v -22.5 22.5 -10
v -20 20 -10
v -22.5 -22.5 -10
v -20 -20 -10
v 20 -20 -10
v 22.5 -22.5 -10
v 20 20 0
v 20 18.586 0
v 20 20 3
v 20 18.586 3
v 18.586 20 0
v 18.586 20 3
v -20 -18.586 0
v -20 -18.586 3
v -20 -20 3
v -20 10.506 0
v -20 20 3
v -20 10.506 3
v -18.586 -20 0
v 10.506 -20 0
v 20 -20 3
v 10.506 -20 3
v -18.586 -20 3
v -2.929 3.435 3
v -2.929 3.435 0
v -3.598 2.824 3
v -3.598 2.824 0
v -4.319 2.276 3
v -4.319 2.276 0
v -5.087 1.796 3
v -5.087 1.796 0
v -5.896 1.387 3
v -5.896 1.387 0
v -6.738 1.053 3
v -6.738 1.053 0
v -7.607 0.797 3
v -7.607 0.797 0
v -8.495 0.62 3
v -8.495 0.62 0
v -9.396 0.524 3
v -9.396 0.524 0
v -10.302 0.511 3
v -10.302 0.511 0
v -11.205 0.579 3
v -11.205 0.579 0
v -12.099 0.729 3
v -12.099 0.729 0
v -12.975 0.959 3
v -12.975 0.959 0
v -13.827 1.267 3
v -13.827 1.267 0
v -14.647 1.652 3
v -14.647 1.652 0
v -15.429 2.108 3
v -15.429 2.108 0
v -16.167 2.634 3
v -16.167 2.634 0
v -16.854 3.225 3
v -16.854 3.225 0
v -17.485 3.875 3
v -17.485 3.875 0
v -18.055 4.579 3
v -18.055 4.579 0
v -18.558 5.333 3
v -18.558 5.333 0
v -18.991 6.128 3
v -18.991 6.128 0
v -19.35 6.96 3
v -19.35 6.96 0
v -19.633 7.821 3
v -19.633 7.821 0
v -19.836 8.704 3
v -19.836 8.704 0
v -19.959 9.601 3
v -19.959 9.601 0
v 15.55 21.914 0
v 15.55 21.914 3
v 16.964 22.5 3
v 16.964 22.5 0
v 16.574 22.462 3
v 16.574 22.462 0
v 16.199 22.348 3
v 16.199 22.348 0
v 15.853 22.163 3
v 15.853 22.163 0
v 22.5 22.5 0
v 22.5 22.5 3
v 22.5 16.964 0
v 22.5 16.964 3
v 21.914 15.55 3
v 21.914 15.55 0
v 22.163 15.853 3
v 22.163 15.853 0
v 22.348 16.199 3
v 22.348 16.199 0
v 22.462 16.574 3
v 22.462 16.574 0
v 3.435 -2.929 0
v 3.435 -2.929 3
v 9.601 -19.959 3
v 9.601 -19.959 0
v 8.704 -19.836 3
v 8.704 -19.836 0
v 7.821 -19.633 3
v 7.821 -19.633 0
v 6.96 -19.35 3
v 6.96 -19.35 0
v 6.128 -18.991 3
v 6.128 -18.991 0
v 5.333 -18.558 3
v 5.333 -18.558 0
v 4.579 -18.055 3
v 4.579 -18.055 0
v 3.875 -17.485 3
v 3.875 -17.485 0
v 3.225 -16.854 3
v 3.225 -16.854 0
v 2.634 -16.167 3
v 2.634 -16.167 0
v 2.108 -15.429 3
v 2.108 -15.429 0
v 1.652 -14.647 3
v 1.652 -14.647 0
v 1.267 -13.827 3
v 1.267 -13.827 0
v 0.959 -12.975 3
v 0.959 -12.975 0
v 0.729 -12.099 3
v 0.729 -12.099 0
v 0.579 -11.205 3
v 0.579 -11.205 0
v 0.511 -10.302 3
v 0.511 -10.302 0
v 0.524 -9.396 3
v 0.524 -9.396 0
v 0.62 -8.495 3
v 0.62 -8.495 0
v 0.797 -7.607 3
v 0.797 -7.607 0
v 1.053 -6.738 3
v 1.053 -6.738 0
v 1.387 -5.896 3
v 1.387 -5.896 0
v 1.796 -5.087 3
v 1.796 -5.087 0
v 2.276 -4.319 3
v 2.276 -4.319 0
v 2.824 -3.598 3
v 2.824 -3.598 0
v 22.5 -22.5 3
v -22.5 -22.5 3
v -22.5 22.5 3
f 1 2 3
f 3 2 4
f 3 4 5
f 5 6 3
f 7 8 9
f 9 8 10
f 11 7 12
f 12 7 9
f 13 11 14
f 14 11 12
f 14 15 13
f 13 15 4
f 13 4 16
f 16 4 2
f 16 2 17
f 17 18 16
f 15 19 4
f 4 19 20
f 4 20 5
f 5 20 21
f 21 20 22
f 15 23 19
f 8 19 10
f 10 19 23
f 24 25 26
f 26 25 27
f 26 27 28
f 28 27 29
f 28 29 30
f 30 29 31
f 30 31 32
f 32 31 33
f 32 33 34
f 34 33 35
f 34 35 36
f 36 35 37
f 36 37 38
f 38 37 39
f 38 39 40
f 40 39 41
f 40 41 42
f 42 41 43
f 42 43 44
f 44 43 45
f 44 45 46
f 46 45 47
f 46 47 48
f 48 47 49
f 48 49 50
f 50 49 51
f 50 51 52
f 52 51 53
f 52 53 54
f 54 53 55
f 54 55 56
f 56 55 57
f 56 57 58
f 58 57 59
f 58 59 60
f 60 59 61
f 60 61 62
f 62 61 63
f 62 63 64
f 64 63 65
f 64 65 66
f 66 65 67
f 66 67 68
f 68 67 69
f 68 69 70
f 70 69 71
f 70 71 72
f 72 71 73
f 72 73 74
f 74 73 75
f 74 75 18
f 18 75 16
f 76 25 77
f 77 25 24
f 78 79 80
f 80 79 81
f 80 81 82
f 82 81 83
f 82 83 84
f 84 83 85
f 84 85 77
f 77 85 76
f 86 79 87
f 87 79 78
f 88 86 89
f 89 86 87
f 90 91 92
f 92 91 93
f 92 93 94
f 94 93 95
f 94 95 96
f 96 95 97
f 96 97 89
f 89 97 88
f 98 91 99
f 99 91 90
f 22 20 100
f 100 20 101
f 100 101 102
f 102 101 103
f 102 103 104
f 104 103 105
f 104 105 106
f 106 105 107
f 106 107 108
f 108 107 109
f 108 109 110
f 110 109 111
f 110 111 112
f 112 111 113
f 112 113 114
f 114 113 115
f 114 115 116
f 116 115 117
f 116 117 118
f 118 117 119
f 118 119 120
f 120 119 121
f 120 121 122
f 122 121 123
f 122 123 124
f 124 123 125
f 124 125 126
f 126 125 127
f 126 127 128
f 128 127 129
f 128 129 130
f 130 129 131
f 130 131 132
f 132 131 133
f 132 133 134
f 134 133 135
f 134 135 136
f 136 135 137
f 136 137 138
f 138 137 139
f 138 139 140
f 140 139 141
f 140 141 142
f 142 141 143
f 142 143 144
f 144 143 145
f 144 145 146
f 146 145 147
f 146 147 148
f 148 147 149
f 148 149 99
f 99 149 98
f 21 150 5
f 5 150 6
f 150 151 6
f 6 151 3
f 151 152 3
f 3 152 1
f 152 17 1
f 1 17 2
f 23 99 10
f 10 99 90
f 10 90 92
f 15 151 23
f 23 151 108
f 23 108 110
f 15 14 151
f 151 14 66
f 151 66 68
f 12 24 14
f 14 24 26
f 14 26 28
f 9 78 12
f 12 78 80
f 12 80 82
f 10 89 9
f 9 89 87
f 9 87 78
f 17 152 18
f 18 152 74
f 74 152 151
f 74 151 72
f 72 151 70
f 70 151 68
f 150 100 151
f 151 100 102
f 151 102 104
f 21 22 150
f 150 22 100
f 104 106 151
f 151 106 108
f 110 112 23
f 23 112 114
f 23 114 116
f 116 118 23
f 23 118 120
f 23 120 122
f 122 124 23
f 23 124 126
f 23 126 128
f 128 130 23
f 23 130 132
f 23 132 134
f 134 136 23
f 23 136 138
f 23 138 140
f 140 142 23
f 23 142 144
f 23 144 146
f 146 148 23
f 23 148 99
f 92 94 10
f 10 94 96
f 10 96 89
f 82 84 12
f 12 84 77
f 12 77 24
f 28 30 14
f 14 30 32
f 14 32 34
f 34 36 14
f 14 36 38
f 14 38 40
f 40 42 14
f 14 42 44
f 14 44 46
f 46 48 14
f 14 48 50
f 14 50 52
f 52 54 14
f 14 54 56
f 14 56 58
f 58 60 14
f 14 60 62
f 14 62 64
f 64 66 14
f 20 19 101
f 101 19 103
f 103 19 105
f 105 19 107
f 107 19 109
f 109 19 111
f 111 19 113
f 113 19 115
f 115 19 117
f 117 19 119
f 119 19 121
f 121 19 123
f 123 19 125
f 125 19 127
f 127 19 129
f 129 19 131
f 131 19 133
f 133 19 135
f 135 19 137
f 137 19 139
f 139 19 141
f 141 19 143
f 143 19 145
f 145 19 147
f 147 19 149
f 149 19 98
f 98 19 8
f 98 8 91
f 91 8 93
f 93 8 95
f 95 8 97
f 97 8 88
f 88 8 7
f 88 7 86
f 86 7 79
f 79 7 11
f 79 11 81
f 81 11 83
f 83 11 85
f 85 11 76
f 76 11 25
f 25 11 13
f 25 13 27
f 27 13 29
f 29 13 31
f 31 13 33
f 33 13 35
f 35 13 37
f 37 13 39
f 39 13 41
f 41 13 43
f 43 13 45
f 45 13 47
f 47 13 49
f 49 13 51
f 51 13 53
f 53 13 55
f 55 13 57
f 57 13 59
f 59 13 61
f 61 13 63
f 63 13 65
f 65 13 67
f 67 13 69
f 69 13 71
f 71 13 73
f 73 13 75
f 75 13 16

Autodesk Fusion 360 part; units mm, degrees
sketch "Sketch1" plane through (0, 0, 0) normal (0, 0, 1) x (1, 0, 0)
  line L0 (-22.5, 22.5) -> (-22.5, -22.5)
  line L1 (-22.5, -22.5) -> (22.5, -22.5)
  line L2 (22.5, 16.9645) -> (22.5, 22.5)
  line L3 (-20, 20) -> (-20, 10.5061)
  line L4 (20, 20) -> (18.5858, 20)
  line L5 (-20, 20) -> (-22.5, 22.5)
  line L6 (-2.9289, 3.435) -> (15.5503, 21.9142)
  line L7 (22.5, 22.5) -> (16.9645, 22.5)
  line L8 (10.5061, -20) -> (20, -20)
  line L9 (20, -20) -> (22.5, -22.5)
  line L10 (3.435, -2.9289) -> (21.9142, 15.5503)
  line L11 (20, 18.5858) -> (20, 20)
  arc A0 (3.435, -2.9289) -> (10.5061, -20) centre (10.5061, -10) ccw
  arc A1 (-20, 10.5061) -> (-2.9289, 3.435) centre (-10, 10.5061) ccw
  line L12 (-18.5858, -20) -> (-20, -20)
  line L13 (-20, -18.5858) -> (-20, -20)
  line L14 (-18.5858, -20) -> (20, 18.5858)
  line L15 (-20, -18.5858) -> (18.5858, 20)
  arc A2 (21.9142, 15.5503) -> (22.5, 16.9645) centre (20.5, 16.9645) ccw
  arc A3 (16.9645, 22.5) -> (15.5503, 21.9142) centre (16.9645, 20.5) ccw
  line L16 (-20, 20) -> (-20, -18.5858)
  line L17 (20, -20) -> (-18.5858, -20)
  dimension "d3" = 45
  dimension "d4" = 45
  dimension "d5" = 10
  dimension "d6" = 2
extrude "Extrude1" add sketch "Sketch1" along normal blind 3 contours L0 L1 L3 L5 L8 L9 L12 L13 L16 L17 | L2 L4 L6 L7 L10 L11 A0 A1 L14 L15 A2 A3 L16 L17
extrude "Extrude2" add sketch "Sketch1" against normal blind 10 contours L0 L1 L3 L5 L8 L9 L12 L13 L16 L17
